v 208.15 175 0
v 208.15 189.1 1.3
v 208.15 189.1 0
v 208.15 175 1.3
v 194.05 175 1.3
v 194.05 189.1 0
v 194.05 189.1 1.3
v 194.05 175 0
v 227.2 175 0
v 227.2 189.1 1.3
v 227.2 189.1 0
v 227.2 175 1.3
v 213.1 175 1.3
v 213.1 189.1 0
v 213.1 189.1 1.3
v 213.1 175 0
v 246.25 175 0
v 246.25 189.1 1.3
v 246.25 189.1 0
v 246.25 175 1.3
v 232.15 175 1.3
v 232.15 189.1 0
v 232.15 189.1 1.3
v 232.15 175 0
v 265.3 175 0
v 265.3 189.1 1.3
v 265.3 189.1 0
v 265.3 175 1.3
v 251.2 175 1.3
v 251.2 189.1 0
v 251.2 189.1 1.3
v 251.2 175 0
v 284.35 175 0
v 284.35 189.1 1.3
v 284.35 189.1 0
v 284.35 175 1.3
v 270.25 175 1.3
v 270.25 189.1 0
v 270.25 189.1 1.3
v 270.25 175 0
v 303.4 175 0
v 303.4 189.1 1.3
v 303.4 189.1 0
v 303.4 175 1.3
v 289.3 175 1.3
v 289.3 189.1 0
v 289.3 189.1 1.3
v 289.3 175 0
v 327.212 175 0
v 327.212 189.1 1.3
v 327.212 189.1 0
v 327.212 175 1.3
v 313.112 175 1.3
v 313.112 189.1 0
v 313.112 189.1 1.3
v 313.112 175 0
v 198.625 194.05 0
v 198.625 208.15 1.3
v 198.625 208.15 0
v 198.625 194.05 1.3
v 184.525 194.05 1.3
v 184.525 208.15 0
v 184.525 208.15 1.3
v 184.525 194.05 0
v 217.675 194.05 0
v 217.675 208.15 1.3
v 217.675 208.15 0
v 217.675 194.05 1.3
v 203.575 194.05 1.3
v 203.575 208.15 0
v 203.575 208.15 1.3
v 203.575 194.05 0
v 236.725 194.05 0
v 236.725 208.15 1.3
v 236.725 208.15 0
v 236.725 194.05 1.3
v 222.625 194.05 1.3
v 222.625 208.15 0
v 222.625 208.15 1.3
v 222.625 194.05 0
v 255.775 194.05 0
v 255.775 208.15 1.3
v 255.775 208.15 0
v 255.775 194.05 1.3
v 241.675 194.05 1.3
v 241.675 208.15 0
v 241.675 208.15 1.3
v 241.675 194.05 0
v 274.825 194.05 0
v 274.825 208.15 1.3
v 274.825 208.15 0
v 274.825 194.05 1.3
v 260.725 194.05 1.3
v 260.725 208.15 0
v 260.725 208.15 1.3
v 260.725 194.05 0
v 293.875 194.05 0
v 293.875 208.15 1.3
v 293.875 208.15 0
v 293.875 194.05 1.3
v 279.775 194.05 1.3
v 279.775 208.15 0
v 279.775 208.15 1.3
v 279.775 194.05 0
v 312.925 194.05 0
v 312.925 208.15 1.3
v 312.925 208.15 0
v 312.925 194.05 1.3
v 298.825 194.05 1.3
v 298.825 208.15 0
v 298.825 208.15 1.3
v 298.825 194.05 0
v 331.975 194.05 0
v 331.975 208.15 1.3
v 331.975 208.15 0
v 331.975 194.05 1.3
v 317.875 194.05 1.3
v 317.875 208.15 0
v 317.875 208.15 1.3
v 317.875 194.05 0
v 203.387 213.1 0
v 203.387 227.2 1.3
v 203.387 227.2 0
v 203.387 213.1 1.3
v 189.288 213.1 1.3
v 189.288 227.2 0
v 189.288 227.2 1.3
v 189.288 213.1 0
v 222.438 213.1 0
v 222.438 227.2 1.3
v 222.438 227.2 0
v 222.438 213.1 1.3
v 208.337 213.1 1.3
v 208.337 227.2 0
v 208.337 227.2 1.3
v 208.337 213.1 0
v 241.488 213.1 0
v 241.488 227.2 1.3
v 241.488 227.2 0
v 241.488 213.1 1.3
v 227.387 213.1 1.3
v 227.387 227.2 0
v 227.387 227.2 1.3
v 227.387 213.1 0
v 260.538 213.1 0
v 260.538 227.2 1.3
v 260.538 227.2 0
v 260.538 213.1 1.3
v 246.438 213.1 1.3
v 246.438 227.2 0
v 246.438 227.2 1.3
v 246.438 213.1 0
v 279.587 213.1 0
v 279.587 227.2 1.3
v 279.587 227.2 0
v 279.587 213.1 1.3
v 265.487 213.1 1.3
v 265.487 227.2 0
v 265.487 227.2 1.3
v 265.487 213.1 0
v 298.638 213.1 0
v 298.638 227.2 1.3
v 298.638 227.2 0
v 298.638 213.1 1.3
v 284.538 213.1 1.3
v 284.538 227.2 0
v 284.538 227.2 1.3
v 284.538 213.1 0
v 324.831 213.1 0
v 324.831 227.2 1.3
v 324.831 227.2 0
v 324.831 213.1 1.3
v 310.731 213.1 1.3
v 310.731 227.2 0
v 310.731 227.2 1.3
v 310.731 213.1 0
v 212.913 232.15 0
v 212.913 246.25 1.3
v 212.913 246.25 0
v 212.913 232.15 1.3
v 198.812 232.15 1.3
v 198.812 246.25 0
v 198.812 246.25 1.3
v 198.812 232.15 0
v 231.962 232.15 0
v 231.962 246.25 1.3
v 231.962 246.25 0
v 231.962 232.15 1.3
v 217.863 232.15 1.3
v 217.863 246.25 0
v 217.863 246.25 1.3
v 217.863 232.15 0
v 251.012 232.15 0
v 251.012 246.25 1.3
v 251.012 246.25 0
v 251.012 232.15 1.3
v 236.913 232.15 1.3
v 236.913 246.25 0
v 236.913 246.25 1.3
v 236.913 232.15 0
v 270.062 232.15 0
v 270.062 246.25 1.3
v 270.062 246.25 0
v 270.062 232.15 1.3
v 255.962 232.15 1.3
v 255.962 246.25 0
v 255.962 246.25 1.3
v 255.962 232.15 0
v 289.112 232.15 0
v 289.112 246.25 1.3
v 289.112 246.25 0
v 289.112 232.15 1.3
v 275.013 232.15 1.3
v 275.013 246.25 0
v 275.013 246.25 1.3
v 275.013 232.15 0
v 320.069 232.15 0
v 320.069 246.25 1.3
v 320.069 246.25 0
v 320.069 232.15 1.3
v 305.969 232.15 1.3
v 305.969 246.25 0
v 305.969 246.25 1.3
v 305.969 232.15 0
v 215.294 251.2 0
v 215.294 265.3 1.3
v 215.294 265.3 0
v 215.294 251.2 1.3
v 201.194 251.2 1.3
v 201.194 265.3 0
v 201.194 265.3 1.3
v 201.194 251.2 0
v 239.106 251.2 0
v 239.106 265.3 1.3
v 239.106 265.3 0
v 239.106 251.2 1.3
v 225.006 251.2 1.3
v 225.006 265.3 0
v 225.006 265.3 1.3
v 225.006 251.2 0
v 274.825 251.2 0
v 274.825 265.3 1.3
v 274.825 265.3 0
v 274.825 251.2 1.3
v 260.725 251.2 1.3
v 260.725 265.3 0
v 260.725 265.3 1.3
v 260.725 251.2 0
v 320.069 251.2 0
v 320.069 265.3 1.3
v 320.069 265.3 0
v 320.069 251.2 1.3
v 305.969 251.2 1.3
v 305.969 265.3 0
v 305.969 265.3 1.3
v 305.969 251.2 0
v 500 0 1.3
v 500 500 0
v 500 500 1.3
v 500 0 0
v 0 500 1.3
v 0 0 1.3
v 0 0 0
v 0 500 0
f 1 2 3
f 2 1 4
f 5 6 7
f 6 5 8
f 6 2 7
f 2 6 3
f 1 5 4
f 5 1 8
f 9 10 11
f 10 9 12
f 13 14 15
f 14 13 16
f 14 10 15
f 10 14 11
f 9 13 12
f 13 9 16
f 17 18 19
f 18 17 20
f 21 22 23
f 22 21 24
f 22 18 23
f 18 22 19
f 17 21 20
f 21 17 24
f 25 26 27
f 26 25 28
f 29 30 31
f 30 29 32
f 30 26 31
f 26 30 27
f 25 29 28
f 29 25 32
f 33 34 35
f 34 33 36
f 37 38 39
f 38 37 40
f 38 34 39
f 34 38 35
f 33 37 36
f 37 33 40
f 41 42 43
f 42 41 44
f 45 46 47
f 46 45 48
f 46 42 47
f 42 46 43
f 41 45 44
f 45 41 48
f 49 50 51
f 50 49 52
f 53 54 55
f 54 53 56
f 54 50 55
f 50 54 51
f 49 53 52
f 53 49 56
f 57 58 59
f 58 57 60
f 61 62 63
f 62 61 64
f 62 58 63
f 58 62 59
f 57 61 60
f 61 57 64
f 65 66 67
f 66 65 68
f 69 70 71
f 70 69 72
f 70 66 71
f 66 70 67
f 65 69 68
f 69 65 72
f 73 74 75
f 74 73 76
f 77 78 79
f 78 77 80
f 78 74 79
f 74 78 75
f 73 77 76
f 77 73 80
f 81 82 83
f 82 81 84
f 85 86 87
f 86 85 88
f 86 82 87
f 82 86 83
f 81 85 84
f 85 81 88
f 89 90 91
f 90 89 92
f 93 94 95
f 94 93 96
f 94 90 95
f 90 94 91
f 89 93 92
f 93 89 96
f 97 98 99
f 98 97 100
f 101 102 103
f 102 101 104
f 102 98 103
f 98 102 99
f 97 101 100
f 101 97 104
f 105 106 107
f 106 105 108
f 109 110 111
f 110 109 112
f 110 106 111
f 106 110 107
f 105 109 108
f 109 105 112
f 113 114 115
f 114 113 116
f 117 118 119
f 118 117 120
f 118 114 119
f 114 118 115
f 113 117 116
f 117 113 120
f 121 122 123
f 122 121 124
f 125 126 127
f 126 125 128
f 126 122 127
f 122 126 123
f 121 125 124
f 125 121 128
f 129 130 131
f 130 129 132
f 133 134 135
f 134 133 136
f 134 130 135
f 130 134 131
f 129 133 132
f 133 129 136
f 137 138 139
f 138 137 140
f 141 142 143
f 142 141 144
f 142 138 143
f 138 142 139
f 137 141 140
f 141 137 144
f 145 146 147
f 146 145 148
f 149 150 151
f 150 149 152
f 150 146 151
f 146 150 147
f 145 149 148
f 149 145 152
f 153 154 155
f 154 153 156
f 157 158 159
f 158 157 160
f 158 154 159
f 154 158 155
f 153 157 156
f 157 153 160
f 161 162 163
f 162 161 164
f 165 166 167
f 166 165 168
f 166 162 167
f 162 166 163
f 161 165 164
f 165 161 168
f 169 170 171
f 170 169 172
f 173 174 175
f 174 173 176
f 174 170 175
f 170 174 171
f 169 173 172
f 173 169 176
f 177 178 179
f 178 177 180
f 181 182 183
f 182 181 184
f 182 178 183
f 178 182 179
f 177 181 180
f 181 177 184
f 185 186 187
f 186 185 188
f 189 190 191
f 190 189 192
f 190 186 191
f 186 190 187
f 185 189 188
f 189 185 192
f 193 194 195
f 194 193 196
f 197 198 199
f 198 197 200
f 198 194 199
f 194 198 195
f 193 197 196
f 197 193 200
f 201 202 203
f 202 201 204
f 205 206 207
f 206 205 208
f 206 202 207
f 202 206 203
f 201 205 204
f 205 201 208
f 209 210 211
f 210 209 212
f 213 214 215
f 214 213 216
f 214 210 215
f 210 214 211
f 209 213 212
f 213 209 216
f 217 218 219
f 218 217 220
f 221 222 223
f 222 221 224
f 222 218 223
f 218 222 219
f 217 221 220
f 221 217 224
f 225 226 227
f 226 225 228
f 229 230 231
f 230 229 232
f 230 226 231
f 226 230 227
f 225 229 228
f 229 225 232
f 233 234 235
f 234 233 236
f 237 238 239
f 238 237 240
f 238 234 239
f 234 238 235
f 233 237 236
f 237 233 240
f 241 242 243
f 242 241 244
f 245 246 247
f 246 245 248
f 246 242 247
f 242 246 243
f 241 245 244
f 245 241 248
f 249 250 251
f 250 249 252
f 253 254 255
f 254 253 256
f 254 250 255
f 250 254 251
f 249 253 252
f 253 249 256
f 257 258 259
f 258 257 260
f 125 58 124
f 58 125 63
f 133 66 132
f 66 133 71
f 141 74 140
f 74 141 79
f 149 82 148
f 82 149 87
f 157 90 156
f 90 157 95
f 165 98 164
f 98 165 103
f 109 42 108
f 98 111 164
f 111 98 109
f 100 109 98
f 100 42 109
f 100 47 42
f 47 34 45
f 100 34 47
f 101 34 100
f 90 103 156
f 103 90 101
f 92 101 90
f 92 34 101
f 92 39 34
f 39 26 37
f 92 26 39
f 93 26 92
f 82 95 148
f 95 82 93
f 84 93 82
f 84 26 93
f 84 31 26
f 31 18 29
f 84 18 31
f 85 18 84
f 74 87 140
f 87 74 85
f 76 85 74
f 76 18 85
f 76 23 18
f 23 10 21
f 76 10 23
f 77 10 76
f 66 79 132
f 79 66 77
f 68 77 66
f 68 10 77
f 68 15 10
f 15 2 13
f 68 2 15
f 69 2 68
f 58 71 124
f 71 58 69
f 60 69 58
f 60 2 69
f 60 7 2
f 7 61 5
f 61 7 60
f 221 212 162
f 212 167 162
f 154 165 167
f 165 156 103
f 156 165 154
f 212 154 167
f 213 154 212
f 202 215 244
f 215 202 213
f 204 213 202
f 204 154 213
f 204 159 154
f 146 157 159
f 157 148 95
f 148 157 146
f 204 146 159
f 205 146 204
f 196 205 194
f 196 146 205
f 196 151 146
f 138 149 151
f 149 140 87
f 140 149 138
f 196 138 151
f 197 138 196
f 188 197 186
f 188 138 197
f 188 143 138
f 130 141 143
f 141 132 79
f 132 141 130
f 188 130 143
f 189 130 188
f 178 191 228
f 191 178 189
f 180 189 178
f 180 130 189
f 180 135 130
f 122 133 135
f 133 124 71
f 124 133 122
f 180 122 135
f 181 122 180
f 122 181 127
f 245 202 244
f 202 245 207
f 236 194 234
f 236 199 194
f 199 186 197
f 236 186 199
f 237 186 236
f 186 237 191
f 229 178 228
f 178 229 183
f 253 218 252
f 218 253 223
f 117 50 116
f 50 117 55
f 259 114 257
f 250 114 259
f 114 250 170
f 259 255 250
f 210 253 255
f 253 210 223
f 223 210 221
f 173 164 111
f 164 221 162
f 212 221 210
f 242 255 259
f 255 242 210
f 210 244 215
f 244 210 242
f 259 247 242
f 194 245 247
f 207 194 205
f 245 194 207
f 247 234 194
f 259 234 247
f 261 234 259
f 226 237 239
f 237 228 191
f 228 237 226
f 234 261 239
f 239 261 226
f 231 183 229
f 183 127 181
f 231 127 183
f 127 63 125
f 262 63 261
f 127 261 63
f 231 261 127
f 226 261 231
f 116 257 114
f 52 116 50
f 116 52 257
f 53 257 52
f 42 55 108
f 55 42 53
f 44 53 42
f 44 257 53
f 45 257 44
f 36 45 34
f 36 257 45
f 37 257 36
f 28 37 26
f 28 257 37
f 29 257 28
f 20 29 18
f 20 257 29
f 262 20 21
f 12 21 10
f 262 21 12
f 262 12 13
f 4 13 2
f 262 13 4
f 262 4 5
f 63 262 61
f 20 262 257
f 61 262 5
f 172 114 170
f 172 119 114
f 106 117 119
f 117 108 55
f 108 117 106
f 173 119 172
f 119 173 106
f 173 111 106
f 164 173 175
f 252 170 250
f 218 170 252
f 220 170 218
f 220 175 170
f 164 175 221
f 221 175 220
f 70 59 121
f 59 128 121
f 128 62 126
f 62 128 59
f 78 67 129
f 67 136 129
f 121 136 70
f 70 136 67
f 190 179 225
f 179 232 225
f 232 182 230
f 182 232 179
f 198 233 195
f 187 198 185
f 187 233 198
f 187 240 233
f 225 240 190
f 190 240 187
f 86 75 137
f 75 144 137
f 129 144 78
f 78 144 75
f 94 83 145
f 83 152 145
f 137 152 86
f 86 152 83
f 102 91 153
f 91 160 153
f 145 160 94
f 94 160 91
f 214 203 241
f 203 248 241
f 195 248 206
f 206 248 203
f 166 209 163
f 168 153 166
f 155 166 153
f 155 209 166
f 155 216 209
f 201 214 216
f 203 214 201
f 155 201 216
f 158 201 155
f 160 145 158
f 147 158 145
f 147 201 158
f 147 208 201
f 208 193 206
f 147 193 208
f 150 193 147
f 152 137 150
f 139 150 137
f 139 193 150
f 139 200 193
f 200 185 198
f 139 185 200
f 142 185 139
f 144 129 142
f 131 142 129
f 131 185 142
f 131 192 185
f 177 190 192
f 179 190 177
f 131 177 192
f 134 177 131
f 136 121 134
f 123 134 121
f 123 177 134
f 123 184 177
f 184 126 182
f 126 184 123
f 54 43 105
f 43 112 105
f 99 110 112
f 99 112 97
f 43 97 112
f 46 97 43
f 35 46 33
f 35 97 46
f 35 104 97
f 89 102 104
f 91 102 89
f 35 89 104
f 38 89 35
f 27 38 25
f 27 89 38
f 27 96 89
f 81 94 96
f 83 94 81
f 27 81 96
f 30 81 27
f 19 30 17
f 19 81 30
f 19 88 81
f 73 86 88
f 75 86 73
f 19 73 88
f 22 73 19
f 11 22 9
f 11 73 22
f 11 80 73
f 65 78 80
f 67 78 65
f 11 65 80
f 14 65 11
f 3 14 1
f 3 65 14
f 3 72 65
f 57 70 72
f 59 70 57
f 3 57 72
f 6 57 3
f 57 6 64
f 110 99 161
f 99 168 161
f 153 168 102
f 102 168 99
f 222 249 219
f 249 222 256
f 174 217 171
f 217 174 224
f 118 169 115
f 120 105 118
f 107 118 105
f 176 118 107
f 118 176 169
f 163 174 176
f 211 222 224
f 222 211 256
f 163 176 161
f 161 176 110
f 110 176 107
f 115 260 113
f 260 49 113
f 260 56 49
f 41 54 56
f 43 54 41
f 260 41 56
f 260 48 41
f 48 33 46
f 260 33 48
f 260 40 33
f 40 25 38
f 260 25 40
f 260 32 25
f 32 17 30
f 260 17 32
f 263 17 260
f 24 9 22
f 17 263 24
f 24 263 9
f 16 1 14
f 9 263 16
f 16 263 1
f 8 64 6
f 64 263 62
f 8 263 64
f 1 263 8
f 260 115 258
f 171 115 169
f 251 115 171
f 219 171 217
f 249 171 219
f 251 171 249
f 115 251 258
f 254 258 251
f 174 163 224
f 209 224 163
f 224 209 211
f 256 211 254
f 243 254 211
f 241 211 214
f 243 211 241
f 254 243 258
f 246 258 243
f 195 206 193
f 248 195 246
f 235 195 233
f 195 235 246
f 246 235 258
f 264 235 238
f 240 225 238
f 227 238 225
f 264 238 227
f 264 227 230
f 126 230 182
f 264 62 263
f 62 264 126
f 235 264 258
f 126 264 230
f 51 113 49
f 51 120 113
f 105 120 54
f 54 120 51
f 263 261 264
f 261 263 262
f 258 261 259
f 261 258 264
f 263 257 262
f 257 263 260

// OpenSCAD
positions2 = [
   // for: key_idx plus shift, last: key_idx + shift + half oversize
   concat([for(i=[0:5]) i+1/2], [6 + 1/2 + 1/4]),
   [for(i=[0:7]) i],
   concat([for(i=[0:5]) i+1/4], [6 + 1/4 + 3/8]),
   concat([for(i=[0:4]) i+3/4], [5 + 3/4 + 5/8]),
   [7/8, 7/8]
];
   
positions_left = [[0.5, 1.5, 2.5, 3.5, 4.5, 5.5, 6.5],
 [0.75, 2.0, 3.0, 4.0, 5.0, 6.0],
 [0.875, 2.25, 3.25, 4.25, 5.25, 6.25],
 [1.125, 2.75, 3.75, 4.75, 5.75, 6.75],
 [0.75, 2.0, 3.25, 4.5, 6.0, 7.5]];

positions_right = [[1.0, 2.0, 3.0, 4.0, 5.0, 6.0, 7.25],
 [0.5, 1.5, 2.5, 3.5, 4.5, 5.5, 6.5, 7.5],
 [0.75, 1.75, 2.75, 3.75, 4.75, 5.75, 7.125],
 [1.25, 2.25, 3.25, 4.25, 5.25, 6.875],
 [1.375, 2.625, 4.5, 6.875]];

positions = positions_right;

difference(){ 
    cube([500, 500, 1.3]);
    for(row=[0:len(positions)-1]) {
        for(col=[0:len(positions[row])-1]){
            translate([positions[row][col]*19.05+175, 19.05*row+175, -0.1])
                cube(14.1,14.1,10);
        }
    }
}
